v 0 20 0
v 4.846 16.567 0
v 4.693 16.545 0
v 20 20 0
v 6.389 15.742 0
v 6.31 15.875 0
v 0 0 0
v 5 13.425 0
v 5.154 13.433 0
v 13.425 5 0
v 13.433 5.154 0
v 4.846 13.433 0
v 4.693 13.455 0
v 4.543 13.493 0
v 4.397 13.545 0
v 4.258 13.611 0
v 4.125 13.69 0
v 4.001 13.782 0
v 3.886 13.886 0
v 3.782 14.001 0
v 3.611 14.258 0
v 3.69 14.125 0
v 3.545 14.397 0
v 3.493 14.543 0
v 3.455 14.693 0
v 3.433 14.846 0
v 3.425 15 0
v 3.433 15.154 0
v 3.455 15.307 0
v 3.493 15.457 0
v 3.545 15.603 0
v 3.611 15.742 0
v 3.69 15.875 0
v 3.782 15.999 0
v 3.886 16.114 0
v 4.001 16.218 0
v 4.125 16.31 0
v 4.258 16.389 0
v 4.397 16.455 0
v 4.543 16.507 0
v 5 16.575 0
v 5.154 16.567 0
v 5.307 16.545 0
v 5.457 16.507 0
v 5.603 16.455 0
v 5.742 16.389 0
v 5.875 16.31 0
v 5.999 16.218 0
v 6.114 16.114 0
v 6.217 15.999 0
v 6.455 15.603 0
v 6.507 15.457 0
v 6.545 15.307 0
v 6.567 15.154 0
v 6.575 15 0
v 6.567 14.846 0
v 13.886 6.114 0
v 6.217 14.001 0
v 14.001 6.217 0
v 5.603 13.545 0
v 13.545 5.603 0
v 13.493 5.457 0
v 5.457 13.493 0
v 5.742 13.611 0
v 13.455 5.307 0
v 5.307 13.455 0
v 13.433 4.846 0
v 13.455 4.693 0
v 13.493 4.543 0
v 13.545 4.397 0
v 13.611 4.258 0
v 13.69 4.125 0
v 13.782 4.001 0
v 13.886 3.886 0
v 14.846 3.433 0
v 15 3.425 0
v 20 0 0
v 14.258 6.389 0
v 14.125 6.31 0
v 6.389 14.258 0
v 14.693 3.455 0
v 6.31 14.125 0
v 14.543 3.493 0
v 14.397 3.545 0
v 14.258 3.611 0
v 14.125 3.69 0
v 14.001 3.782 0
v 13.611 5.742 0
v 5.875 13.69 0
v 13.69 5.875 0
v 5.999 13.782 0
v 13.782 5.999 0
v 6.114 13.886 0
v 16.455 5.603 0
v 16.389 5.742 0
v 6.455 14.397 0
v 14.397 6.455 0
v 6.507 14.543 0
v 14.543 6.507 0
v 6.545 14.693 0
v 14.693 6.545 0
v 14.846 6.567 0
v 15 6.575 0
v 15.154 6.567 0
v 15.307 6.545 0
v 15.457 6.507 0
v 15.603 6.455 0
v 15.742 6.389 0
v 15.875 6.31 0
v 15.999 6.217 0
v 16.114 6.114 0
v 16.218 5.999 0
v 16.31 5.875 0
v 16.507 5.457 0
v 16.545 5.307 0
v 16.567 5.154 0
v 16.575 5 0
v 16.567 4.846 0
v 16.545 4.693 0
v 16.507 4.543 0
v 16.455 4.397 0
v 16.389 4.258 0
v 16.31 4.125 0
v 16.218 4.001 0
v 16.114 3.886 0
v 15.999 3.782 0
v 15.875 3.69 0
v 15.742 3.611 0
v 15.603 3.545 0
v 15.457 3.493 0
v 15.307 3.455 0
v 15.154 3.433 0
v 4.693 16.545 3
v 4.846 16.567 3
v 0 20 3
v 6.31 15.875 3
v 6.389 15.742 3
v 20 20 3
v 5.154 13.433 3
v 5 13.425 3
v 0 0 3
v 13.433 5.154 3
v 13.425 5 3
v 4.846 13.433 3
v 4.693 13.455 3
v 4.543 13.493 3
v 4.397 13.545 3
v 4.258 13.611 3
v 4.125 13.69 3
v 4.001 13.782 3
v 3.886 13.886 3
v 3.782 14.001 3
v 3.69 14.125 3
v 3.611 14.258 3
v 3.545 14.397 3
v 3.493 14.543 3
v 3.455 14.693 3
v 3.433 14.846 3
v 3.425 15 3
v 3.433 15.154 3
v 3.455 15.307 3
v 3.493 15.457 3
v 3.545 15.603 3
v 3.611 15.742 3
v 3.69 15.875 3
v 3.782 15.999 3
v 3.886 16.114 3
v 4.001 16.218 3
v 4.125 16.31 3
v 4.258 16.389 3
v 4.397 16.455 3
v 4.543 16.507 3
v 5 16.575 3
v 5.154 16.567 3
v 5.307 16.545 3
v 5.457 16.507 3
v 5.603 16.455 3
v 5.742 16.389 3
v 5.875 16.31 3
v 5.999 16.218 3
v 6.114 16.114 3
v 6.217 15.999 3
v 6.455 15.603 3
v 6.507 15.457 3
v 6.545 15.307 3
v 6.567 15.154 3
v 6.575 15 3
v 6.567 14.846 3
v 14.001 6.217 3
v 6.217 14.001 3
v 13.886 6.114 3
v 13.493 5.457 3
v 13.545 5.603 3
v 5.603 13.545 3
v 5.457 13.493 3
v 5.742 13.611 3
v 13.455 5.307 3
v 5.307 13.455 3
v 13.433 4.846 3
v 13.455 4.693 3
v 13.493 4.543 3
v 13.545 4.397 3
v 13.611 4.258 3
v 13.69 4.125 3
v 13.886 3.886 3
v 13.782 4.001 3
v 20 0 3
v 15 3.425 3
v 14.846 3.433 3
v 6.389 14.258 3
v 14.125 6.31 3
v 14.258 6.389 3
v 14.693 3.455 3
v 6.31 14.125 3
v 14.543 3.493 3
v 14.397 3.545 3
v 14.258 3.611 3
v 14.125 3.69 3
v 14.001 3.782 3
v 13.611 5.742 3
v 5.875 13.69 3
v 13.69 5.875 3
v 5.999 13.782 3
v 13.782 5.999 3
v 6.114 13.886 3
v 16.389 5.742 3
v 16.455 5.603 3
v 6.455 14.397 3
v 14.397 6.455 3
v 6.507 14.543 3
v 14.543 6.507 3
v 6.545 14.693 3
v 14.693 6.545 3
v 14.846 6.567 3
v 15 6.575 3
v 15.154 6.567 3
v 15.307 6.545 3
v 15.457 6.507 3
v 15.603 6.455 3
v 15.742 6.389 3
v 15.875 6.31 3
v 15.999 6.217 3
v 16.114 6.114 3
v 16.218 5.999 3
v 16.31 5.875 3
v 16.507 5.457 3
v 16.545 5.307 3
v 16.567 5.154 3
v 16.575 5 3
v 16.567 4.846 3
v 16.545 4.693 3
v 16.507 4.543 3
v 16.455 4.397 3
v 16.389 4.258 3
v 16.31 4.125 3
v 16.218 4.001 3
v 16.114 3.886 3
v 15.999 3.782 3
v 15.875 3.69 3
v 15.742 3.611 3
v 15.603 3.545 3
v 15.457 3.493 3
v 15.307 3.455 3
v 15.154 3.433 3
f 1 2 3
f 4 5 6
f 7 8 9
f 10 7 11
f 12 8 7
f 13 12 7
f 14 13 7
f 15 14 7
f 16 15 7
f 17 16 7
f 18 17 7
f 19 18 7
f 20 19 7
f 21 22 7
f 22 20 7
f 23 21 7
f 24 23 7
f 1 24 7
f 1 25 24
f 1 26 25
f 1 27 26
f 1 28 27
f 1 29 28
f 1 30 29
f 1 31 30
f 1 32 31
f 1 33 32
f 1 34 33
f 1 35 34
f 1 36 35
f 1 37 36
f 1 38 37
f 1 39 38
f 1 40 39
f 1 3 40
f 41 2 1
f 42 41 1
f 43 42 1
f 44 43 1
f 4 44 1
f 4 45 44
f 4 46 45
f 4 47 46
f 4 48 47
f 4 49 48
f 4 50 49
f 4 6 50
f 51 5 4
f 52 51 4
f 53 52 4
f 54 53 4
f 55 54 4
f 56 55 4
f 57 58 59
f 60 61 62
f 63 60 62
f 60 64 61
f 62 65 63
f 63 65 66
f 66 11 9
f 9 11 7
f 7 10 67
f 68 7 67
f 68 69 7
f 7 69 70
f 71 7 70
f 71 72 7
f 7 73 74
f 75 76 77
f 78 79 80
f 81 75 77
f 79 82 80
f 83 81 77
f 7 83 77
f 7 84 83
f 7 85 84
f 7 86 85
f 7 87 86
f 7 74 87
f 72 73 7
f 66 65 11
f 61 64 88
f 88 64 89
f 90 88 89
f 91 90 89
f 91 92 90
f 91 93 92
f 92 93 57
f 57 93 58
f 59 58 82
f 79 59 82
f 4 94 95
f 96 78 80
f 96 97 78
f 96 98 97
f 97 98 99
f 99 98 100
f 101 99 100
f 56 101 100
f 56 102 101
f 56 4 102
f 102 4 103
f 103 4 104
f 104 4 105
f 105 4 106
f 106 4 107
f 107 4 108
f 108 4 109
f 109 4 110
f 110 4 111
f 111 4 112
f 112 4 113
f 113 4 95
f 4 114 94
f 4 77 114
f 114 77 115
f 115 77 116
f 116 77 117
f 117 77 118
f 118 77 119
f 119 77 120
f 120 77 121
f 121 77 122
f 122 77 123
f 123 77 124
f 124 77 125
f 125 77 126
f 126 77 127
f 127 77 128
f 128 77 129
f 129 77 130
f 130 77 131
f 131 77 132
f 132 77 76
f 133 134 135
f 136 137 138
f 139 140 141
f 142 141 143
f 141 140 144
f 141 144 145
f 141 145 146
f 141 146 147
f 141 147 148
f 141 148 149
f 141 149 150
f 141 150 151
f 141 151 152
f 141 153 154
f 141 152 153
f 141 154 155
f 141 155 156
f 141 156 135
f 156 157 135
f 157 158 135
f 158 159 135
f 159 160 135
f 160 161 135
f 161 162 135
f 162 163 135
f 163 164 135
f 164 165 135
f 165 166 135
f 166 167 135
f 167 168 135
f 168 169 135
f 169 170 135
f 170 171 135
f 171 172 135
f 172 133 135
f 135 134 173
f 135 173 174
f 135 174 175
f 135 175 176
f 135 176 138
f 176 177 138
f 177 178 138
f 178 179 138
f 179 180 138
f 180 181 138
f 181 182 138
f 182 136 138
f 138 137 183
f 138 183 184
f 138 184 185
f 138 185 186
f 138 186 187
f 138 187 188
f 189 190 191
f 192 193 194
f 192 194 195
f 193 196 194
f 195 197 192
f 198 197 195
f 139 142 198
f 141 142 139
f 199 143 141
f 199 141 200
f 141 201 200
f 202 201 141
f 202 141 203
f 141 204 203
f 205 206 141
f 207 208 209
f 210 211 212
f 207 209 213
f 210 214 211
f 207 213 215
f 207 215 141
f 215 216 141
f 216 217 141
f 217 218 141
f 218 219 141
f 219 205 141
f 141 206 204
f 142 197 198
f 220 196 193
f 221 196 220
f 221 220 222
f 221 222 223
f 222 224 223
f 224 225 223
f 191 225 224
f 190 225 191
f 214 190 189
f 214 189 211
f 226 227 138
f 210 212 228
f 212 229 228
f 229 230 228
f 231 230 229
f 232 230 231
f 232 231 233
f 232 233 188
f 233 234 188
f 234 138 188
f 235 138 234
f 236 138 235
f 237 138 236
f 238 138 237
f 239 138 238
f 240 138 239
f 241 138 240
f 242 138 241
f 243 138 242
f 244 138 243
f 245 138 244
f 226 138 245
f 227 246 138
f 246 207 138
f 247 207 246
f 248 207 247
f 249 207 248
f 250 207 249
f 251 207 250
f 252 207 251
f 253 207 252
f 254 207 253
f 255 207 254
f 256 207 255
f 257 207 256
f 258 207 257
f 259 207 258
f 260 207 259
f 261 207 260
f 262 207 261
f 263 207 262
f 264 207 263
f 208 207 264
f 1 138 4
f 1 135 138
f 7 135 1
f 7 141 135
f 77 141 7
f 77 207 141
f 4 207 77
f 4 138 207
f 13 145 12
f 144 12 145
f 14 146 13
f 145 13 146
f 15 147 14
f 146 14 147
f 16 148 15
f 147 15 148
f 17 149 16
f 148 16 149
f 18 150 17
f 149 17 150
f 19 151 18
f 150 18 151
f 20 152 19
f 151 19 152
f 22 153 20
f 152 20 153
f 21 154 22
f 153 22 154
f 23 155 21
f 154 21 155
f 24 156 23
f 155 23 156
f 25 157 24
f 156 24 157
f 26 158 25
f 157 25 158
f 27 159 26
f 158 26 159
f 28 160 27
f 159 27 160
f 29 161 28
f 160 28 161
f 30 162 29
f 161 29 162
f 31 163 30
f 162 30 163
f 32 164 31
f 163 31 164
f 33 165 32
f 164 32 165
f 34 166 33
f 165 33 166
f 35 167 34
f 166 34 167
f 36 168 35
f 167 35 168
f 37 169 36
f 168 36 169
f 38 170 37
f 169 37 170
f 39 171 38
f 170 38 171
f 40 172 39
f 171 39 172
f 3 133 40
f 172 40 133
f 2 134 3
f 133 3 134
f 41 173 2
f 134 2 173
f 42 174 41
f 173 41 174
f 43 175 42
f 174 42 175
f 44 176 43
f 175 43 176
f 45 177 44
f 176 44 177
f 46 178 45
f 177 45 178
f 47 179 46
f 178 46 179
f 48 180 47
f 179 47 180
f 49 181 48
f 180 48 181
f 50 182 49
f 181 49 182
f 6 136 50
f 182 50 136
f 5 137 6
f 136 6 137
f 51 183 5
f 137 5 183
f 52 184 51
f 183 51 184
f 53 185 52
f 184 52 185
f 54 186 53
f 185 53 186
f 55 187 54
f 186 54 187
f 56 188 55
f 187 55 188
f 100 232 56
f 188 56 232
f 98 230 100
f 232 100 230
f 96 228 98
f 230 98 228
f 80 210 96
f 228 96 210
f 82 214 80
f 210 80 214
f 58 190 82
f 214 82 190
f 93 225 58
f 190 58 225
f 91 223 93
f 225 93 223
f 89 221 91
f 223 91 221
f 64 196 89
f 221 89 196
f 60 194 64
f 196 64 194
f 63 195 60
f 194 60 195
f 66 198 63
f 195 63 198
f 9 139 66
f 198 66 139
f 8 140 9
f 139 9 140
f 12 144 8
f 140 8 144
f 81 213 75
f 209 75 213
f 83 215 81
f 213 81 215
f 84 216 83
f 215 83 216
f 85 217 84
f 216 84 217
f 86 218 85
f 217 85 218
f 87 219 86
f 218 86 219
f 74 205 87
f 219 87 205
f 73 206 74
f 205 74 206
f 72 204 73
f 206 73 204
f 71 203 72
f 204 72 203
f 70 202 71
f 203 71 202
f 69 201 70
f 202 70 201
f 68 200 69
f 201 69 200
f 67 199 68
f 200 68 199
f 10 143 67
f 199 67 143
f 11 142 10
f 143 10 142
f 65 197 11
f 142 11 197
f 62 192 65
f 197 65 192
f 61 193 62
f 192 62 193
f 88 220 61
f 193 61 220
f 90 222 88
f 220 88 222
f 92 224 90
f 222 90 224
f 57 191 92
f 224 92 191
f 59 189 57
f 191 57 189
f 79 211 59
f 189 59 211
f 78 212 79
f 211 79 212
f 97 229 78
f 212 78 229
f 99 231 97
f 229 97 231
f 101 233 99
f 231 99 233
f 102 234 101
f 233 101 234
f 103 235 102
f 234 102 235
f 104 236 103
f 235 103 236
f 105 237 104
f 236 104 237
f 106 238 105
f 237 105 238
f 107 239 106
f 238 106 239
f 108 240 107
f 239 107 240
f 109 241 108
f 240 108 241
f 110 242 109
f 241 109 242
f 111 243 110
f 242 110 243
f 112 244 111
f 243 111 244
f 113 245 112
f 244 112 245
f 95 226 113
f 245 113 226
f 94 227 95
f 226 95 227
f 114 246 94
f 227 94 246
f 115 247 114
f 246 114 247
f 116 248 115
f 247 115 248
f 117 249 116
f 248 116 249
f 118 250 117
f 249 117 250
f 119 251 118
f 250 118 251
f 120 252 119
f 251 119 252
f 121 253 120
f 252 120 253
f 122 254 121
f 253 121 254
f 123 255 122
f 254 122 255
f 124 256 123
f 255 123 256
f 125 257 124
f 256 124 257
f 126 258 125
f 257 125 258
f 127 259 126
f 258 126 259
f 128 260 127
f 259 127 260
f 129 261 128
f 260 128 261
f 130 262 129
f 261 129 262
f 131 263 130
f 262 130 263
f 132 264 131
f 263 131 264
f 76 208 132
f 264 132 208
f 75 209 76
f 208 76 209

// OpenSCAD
// file: miniature-bases/common/params.scad
$fn = $preview ? 32 : 64;

// Value of kerf to apply when lasercutting things.
// Value is based on the experience using Epilog Mini machine in
// Google WFC Makerspace.
kerf = 0.2;

// Spacing between insert and miniatures bases to allow to slick fit.
insert_spacing = 0.2;
magnet_spacing = 0.15;

// Default values
//
// Default diameter of magnets used for my miniatures.
default_magnet_diameter = 3;
base_height = 3;
pin_height = 2.5;
// file: miniature-bases/common/kow.scad
include <params.scad>;

module MagnetSockets(unit_type, only_diagonal = false) {
  baseSize = BaseSize(unit_type);

  translate([ 5, baseSize[1] - 5 ]) children(0);
  translate([ baseSize[0] - 5, 5 ]) children(0);

  if (!only_diagonal) {
    translate([ 5, 5 ]) children(0);
    translate([ baseSize[0] - 5, baseSize[1] - 5 ]) children(0);
  }
}

module Magnet(d = default_magnet_diameter, offset = 0) {
  circle(d = d + offset);
}

module BM4Sockets(unit_type, spacing, only_diagonal = false) {
  MagnetSockets(unit_type = unit_type, only_diagonal = only_diagonal) {
    Magnet(offset = spacing);
  }
}

module Base(unit_type, extraMargin = [ 0, 0 ]) {
  square(BaseSize(unit_type) + extraMargin);
}

function BaseSize(unit_type) = unit_type == "infantry"         ? [ 20, 20 ]
                               : unit_type == "heavy_infantry" ? [ 25, 25 ]
                               : unit_type == "cavalry"        ? [ 25, 50 ]
                               : unit_type == "lrginf"         ? [ 40, 40 ]
                               : unit_type == "lrgcav"         ? [ 50, 50 ]
                               : unit_type == "titan"          ? [ 75, 75 ]
                                                               : [ 10, 10 ];

function BaseNum(unit_type, unitSize) =
    unit_type == "infantry"  ? unitSize == "legion"     ? [ 10, 6 ]
                               : unitSize == "horde"    ? [ 10, 4 ]
                               : unitSize == "regiment" ? [ 5, 4 ]
                                                        : [ 5, 2 ]
    : unit_type == "cavalry" ? unitSize == "regiment" ? [ 5, 2 ] : [ 5, 1 ]
    : unit_type == "lrginf"  ? unitSize == "regiment" ? [ 3, 1 ] : [ 3, 2 ]
    : unit_type == "lrgcav"  ? unitSize == "regiment" ? [ 3, 1 ]
                               : unitSize == "horde"  ? [ 3, 2 ]
                                                      : [ 1, 1 ]
                             : [ 1, 1 ];
// file: miniature-bases/libbase.scad
include <common/kow.scad>;

module MagnetHole() { Magnet(offset = magnet_spacing); } 

module BaseBM4(unit_type, only_diagonal = false) {
  linear_extrude(height = base_height) {
    difference() {
      Base(unit_type = unit_type);
      union() {
        MagnetSockets(unit_type = unit_type, only_diagonal = only_diagonal) {
          MagnetHole();
        }
        children();
      }
    }
  }
}

SLOTTA_ANGLE = 0;
SLOTTA_SLOT_MARGIN = 1.5; 
SLOT_WIDTH = 1.7;  


module SlottaBM4(a = SLOTTA_ANGLE, unit_type = "infantry", slot_margin = SLOTTA_SLOT_MARGIN) {
  base_size = BaseSize(unit_type);

  // slot_length = 18; for a = 0 (as in GW bases)
  // total_slot_margin = 4; for a = 45 (as in GW bases)

  slot_length =
      (base_size[0] - 2 * slot_margin - cos(90 - a) * SLOT_WIDTH) / cos(a);

  BaseBM4(unit_type = unit_type, only_diagonal = true) {
    translate(0.5 * base_size) rotate(a)
        square([ slot_length, SLOT_WIDTH ], center = true);
  };
}

module CavalrySlot() {
  slotWidth = 2.5;
  slotLength = 35;
  slotSpacing = 2.8;
  baseSize = BaseSize("cavalry");

  translate([
    (baseSize[0] - 2 * slotWidth - slotSpacing) / 2,
    (baseSize[1] - slotLength) / 2
  ]) {
    square([ slotWidth, slotLength ]);
    translate([ slotSpacing + slotWidth, 0 ]) square([ slotWidth, slotLength ]);
  }
}
// main file
use <miniature-bases/libbase.scad>

$fn = $preview ? 32 : 64;

BaseBM4("infantry", only_diagonal=true);
